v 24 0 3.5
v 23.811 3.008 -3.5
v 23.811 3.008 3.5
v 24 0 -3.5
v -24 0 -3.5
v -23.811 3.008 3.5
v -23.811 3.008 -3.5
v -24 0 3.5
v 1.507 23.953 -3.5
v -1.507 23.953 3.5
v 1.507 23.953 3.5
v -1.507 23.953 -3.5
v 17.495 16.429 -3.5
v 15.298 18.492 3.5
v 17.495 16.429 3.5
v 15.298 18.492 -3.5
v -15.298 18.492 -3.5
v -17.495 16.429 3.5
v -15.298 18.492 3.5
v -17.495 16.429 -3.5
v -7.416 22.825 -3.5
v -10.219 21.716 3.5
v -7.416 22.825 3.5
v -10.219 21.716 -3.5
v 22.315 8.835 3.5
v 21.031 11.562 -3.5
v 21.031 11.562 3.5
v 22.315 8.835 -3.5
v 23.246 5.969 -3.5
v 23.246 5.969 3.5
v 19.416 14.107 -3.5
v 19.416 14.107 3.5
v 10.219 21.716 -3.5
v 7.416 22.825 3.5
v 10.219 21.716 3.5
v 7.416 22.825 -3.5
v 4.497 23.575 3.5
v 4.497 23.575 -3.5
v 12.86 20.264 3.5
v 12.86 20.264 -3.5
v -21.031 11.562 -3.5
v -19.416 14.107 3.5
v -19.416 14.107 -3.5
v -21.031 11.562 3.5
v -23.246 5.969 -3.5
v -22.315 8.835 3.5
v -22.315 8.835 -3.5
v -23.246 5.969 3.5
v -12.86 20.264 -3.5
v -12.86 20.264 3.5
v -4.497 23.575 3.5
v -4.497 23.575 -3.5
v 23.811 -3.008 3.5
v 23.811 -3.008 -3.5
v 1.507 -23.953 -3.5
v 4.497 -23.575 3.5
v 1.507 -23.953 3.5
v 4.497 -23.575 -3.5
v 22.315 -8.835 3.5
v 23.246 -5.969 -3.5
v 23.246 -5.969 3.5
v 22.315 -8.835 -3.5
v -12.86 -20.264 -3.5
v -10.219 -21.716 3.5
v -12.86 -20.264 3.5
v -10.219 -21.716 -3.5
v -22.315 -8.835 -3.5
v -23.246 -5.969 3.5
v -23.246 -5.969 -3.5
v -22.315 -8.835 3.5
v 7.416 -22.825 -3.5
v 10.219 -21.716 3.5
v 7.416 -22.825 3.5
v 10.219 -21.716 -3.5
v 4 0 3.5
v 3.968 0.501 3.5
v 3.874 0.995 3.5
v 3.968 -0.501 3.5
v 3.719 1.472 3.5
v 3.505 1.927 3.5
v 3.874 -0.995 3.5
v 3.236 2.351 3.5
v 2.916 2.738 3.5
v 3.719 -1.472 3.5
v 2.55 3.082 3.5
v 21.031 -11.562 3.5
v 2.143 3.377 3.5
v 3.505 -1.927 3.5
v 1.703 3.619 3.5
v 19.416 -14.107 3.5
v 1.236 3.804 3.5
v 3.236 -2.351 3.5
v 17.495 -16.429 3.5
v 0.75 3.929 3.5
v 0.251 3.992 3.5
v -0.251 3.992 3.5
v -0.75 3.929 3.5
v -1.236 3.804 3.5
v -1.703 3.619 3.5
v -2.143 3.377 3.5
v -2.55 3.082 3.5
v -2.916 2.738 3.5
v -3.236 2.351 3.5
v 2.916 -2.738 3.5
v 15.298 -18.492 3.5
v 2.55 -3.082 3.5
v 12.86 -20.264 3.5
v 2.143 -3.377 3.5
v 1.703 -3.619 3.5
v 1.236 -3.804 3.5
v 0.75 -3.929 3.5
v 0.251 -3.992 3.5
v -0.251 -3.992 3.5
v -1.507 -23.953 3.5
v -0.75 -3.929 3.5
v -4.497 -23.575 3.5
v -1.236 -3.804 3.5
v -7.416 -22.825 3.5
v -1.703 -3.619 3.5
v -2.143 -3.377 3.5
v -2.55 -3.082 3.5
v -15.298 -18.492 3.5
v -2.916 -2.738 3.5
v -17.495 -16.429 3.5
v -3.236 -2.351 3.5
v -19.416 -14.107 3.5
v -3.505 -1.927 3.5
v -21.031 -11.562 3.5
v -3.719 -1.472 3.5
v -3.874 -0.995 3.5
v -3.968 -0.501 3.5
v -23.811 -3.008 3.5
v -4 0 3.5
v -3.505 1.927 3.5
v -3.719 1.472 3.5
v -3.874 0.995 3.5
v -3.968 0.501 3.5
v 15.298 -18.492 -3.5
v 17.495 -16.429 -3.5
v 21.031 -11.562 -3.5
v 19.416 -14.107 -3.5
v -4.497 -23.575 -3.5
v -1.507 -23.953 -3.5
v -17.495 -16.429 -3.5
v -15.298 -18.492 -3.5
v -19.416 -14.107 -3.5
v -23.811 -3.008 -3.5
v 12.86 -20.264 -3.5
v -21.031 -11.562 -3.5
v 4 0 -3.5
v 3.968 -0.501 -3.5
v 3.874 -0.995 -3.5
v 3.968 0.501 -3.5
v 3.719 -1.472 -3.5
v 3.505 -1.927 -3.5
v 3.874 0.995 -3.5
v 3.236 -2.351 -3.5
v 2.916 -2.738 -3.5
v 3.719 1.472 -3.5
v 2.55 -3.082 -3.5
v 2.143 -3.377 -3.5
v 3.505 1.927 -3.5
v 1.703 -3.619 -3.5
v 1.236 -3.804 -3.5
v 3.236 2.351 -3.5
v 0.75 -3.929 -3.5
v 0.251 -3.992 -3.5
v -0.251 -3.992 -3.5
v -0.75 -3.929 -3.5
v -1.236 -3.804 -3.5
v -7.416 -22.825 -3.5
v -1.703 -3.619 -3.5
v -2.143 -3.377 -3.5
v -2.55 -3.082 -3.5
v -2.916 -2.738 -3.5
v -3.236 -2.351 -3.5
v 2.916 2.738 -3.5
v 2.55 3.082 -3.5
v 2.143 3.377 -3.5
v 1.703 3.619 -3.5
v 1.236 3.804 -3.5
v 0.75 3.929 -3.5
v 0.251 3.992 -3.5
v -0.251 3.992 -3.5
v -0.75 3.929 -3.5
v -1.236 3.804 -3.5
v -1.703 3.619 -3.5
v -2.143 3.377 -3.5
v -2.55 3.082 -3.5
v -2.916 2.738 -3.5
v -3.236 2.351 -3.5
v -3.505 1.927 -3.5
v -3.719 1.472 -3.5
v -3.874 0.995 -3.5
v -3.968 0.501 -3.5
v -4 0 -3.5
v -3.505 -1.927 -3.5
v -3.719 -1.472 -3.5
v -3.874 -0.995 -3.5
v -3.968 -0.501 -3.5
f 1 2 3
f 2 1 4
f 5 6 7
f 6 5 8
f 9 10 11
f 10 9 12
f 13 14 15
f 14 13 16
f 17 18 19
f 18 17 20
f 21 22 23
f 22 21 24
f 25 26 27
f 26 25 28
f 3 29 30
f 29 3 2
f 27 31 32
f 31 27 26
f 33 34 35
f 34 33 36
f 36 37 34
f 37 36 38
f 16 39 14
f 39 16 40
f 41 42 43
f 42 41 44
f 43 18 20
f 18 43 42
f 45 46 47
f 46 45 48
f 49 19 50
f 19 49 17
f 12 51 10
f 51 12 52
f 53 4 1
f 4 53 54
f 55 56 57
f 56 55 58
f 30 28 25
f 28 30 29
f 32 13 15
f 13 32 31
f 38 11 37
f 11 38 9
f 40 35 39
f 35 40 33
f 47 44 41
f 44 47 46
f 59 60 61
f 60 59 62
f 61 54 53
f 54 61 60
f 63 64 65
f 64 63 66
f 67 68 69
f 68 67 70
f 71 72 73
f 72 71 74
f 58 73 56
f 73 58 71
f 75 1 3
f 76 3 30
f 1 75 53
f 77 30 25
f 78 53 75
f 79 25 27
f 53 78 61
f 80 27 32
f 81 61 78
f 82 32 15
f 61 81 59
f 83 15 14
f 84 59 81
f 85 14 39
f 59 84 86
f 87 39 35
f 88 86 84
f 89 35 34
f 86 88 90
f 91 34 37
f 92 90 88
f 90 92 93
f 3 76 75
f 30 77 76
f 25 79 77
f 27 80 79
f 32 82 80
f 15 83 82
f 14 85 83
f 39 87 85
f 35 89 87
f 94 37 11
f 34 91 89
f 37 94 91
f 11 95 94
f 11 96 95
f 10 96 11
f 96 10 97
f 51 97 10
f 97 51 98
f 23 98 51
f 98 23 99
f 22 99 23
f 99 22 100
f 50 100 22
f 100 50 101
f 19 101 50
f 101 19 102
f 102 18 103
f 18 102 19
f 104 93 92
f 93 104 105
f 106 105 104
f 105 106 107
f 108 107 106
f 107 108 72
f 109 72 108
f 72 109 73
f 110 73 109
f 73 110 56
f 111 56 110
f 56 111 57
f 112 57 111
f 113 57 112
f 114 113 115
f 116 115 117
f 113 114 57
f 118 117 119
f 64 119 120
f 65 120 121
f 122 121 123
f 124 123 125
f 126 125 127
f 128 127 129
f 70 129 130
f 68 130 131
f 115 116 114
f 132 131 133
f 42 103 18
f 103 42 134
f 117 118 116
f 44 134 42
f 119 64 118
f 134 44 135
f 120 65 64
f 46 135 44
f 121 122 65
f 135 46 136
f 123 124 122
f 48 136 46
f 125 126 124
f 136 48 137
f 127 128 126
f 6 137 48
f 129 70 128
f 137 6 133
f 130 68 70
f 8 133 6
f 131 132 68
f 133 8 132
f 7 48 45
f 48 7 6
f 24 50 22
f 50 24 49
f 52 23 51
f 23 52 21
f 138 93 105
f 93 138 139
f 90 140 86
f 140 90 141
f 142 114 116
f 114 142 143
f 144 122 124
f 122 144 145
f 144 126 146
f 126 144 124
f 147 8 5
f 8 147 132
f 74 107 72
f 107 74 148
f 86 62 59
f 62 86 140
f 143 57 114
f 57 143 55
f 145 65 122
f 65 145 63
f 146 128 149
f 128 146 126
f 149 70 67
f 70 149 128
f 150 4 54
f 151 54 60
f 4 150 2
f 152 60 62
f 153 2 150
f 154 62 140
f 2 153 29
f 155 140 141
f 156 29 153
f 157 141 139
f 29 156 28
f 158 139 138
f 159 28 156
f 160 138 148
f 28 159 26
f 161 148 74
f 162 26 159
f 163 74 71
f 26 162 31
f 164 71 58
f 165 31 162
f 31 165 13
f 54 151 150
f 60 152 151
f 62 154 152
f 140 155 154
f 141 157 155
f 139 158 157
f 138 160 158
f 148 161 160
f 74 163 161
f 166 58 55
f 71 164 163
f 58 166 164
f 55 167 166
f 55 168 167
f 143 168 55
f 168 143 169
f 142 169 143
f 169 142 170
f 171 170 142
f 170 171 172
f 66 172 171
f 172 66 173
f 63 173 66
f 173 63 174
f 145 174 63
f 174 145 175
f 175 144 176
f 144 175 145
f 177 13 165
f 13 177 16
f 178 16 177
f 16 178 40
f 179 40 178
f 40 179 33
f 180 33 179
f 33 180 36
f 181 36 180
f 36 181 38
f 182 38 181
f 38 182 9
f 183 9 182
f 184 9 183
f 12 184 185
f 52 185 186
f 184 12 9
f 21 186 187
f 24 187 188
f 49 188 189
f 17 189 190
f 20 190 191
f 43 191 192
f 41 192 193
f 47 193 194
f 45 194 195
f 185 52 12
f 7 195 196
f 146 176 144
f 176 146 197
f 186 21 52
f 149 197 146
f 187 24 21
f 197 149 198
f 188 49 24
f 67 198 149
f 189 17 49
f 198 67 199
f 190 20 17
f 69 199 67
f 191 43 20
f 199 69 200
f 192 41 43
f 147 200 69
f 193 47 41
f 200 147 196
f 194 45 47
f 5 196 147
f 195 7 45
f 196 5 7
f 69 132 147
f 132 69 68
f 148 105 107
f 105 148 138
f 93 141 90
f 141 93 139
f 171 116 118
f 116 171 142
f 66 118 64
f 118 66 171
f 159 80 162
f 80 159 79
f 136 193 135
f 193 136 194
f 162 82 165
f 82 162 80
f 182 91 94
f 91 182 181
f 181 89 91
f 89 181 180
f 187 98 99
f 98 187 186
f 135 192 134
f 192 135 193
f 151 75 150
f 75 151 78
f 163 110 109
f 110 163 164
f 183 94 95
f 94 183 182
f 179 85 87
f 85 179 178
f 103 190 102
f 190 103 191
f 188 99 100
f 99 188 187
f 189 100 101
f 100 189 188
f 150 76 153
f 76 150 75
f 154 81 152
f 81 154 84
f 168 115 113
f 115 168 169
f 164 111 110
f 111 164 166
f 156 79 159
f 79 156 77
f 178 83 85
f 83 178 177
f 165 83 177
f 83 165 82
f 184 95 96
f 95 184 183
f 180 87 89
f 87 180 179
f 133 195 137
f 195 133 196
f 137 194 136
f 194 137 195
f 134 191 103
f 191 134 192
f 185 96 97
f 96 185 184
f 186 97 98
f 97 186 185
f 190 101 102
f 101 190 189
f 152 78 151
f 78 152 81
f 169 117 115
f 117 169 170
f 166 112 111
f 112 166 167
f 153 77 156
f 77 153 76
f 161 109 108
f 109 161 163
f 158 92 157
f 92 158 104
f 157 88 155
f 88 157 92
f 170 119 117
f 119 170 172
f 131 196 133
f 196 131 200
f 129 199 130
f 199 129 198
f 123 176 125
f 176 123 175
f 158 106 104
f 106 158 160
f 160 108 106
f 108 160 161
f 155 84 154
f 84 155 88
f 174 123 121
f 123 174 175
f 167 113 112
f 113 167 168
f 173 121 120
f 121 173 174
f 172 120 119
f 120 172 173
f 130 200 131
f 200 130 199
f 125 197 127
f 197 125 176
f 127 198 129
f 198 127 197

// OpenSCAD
$fn = 50;


difference() {
	union() {
		translate(v = [0, 0, -3.5000000000]) {
			cylinder(h = 7, r = 24.0000000000);
		}
	}
	union() {
		translate(v = [0, 0, -100.0000000000]) {
			cylinder(h = 200, r = 4.0000000000);
		}
	}
}
